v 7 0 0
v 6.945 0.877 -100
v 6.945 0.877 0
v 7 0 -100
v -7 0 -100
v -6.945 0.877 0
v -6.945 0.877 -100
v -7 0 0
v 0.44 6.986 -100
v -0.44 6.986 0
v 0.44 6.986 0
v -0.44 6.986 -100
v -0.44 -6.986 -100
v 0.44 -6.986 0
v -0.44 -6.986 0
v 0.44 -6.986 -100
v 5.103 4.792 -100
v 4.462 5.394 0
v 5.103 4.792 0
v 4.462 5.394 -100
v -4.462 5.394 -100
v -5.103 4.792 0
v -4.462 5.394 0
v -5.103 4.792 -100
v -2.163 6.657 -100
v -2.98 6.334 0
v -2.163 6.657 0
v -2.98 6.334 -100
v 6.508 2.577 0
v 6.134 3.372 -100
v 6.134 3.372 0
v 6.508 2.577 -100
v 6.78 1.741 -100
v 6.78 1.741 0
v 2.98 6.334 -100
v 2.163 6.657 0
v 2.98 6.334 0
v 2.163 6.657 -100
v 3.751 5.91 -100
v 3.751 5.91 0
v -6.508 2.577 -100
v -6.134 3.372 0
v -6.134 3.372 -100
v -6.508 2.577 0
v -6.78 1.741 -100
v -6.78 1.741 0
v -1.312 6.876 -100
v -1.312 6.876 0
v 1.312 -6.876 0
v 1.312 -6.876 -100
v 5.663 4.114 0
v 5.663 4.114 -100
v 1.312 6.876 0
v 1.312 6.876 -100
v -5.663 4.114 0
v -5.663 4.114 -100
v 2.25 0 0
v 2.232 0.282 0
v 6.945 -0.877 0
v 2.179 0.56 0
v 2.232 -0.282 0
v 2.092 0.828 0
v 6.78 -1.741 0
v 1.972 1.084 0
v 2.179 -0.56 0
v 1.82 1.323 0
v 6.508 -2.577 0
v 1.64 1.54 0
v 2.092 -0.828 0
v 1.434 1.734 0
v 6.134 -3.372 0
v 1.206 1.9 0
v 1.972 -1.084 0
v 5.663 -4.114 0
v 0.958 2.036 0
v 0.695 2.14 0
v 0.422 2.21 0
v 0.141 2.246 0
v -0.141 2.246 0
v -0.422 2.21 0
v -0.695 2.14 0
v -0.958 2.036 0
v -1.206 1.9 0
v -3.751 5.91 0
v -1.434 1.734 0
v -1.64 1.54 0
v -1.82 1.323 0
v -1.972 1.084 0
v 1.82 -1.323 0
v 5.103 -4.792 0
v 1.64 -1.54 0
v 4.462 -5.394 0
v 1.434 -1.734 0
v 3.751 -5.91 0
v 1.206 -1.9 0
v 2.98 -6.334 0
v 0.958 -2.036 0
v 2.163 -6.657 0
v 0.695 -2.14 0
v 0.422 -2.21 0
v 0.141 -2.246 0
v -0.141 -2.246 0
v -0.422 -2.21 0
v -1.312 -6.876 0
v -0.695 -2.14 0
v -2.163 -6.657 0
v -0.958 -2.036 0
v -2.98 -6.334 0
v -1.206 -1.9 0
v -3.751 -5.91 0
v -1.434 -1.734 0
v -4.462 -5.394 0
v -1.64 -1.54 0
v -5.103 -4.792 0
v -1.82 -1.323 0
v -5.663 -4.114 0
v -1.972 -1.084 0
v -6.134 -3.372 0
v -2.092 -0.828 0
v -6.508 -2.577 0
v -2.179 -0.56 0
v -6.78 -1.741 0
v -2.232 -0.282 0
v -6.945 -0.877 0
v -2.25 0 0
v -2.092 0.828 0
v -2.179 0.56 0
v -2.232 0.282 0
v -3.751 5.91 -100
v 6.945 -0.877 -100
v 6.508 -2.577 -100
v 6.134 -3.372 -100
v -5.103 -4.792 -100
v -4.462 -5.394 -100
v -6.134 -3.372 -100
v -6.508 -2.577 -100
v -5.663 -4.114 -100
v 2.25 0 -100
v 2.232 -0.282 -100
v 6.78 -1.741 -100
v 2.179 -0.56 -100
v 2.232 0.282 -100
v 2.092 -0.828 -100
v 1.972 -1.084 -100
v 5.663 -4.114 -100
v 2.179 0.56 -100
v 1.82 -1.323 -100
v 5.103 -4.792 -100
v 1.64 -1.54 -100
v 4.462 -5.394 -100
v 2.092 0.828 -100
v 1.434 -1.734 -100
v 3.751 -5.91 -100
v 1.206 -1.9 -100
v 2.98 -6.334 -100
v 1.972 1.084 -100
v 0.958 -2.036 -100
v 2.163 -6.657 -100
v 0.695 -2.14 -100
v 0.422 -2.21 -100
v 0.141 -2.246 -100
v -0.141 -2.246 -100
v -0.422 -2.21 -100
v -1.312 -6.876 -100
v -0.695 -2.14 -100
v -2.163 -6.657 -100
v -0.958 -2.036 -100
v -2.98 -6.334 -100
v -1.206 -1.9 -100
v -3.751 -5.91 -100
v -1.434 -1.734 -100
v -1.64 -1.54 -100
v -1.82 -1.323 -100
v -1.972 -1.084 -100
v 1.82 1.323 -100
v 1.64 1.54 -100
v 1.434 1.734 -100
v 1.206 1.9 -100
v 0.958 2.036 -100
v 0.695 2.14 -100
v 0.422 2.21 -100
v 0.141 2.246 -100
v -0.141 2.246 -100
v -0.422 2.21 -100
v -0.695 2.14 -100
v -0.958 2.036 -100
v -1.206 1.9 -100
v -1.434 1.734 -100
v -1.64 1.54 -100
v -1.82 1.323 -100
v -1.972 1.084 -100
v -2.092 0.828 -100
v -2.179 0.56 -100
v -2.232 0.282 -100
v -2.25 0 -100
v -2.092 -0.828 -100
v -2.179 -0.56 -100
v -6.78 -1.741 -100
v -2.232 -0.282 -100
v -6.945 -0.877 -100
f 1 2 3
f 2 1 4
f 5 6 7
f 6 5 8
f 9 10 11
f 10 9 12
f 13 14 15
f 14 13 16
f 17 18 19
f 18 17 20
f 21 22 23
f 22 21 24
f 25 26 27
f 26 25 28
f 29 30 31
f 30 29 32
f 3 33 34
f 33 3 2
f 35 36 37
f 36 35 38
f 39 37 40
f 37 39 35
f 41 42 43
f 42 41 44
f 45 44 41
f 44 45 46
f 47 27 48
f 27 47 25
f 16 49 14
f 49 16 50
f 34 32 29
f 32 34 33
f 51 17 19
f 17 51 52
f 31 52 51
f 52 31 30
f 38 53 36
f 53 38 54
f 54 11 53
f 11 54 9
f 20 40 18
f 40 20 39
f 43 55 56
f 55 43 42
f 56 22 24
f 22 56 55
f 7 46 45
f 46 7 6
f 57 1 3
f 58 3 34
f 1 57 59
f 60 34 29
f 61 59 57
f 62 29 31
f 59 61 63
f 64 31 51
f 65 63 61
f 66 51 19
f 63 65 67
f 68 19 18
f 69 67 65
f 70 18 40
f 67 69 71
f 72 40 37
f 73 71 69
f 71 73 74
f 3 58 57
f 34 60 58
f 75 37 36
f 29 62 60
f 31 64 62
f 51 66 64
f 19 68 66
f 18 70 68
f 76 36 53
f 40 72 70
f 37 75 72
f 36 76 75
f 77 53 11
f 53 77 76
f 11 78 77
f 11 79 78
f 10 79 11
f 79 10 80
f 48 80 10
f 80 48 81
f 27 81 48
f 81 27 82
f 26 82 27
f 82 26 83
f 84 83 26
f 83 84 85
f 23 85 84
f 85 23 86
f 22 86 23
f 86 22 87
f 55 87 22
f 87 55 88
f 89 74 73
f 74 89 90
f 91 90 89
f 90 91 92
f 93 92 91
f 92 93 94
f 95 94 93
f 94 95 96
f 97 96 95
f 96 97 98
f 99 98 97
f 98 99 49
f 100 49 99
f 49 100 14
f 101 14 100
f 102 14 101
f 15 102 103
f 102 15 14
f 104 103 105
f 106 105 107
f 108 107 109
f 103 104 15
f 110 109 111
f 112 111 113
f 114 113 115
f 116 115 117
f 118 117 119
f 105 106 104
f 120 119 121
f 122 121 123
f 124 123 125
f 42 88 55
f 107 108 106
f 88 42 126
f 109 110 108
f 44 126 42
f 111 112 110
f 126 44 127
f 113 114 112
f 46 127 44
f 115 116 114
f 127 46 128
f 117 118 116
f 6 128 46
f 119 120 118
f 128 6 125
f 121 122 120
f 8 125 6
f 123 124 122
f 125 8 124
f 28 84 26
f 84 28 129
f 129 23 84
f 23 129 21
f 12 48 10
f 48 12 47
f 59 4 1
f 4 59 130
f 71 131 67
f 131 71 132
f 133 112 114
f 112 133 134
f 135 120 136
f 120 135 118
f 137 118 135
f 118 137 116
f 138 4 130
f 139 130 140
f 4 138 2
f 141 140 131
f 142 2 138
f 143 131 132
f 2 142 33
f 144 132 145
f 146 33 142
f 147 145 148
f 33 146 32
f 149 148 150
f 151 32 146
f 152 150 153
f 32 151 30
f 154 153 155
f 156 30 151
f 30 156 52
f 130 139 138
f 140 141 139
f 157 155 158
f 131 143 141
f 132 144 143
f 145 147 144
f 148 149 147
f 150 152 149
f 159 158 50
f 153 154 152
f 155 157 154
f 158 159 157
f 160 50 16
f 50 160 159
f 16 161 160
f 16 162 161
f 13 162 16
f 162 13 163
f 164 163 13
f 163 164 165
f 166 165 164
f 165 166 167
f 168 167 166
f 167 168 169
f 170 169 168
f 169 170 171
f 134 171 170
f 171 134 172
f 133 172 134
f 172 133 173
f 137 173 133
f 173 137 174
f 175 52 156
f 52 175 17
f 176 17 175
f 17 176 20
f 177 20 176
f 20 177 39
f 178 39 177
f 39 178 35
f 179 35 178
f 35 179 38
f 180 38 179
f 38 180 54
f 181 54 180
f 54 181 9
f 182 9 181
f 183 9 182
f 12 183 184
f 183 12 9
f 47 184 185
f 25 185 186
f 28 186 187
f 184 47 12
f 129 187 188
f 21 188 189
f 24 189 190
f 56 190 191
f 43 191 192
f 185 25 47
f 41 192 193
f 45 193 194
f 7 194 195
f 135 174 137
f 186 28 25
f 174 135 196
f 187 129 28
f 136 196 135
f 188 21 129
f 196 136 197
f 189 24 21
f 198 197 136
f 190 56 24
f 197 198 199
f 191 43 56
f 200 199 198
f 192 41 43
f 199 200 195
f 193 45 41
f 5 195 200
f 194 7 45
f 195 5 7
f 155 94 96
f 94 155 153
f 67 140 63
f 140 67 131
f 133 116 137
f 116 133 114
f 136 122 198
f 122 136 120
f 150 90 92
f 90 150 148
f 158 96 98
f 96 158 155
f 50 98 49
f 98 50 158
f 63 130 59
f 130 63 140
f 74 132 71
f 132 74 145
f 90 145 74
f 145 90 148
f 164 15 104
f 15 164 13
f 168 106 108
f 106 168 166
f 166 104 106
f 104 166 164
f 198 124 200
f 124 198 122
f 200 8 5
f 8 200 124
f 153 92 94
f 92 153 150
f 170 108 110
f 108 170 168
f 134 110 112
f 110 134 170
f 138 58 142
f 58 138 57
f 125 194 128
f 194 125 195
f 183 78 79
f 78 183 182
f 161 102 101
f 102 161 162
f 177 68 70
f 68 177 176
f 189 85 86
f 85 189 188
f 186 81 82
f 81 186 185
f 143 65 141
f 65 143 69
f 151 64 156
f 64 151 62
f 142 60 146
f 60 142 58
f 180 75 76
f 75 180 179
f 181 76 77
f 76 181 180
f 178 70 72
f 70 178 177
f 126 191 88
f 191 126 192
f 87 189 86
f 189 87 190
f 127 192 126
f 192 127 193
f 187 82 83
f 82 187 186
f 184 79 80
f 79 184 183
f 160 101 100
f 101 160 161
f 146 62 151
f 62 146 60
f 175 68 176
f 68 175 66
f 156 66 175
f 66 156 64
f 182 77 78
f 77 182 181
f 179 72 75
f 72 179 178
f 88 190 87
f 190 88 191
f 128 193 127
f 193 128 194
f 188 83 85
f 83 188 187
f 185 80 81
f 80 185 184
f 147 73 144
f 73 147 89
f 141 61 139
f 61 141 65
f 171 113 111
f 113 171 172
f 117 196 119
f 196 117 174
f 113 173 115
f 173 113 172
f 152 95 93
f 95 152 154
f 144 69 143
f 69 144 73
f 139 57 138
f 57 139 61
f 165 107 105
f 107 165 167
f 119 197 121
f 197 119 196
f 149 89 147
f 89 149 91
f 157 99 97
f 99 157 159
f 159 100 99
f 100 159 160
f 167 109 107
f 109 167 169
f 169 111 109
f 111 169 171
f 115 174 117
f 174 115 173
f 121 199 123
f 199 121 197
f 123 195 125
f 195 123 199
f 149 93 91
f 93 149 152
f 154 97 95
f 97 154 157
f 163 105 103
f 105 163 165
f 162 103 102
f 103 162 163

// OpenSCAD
$fn = 50;


difference() {
	union() {
		translate(v = [0, 0, -100.0000000000]) {
			cylinder(h = 100, r = 7.0000000000);
		}
		cylinder(h = 0, r = 17.0000000000);
	}
	union() {
		#translate(v = [0, 0, -100]) {
			cylinder(h = 100, r = 2.2500000000);
		}
	}
}
